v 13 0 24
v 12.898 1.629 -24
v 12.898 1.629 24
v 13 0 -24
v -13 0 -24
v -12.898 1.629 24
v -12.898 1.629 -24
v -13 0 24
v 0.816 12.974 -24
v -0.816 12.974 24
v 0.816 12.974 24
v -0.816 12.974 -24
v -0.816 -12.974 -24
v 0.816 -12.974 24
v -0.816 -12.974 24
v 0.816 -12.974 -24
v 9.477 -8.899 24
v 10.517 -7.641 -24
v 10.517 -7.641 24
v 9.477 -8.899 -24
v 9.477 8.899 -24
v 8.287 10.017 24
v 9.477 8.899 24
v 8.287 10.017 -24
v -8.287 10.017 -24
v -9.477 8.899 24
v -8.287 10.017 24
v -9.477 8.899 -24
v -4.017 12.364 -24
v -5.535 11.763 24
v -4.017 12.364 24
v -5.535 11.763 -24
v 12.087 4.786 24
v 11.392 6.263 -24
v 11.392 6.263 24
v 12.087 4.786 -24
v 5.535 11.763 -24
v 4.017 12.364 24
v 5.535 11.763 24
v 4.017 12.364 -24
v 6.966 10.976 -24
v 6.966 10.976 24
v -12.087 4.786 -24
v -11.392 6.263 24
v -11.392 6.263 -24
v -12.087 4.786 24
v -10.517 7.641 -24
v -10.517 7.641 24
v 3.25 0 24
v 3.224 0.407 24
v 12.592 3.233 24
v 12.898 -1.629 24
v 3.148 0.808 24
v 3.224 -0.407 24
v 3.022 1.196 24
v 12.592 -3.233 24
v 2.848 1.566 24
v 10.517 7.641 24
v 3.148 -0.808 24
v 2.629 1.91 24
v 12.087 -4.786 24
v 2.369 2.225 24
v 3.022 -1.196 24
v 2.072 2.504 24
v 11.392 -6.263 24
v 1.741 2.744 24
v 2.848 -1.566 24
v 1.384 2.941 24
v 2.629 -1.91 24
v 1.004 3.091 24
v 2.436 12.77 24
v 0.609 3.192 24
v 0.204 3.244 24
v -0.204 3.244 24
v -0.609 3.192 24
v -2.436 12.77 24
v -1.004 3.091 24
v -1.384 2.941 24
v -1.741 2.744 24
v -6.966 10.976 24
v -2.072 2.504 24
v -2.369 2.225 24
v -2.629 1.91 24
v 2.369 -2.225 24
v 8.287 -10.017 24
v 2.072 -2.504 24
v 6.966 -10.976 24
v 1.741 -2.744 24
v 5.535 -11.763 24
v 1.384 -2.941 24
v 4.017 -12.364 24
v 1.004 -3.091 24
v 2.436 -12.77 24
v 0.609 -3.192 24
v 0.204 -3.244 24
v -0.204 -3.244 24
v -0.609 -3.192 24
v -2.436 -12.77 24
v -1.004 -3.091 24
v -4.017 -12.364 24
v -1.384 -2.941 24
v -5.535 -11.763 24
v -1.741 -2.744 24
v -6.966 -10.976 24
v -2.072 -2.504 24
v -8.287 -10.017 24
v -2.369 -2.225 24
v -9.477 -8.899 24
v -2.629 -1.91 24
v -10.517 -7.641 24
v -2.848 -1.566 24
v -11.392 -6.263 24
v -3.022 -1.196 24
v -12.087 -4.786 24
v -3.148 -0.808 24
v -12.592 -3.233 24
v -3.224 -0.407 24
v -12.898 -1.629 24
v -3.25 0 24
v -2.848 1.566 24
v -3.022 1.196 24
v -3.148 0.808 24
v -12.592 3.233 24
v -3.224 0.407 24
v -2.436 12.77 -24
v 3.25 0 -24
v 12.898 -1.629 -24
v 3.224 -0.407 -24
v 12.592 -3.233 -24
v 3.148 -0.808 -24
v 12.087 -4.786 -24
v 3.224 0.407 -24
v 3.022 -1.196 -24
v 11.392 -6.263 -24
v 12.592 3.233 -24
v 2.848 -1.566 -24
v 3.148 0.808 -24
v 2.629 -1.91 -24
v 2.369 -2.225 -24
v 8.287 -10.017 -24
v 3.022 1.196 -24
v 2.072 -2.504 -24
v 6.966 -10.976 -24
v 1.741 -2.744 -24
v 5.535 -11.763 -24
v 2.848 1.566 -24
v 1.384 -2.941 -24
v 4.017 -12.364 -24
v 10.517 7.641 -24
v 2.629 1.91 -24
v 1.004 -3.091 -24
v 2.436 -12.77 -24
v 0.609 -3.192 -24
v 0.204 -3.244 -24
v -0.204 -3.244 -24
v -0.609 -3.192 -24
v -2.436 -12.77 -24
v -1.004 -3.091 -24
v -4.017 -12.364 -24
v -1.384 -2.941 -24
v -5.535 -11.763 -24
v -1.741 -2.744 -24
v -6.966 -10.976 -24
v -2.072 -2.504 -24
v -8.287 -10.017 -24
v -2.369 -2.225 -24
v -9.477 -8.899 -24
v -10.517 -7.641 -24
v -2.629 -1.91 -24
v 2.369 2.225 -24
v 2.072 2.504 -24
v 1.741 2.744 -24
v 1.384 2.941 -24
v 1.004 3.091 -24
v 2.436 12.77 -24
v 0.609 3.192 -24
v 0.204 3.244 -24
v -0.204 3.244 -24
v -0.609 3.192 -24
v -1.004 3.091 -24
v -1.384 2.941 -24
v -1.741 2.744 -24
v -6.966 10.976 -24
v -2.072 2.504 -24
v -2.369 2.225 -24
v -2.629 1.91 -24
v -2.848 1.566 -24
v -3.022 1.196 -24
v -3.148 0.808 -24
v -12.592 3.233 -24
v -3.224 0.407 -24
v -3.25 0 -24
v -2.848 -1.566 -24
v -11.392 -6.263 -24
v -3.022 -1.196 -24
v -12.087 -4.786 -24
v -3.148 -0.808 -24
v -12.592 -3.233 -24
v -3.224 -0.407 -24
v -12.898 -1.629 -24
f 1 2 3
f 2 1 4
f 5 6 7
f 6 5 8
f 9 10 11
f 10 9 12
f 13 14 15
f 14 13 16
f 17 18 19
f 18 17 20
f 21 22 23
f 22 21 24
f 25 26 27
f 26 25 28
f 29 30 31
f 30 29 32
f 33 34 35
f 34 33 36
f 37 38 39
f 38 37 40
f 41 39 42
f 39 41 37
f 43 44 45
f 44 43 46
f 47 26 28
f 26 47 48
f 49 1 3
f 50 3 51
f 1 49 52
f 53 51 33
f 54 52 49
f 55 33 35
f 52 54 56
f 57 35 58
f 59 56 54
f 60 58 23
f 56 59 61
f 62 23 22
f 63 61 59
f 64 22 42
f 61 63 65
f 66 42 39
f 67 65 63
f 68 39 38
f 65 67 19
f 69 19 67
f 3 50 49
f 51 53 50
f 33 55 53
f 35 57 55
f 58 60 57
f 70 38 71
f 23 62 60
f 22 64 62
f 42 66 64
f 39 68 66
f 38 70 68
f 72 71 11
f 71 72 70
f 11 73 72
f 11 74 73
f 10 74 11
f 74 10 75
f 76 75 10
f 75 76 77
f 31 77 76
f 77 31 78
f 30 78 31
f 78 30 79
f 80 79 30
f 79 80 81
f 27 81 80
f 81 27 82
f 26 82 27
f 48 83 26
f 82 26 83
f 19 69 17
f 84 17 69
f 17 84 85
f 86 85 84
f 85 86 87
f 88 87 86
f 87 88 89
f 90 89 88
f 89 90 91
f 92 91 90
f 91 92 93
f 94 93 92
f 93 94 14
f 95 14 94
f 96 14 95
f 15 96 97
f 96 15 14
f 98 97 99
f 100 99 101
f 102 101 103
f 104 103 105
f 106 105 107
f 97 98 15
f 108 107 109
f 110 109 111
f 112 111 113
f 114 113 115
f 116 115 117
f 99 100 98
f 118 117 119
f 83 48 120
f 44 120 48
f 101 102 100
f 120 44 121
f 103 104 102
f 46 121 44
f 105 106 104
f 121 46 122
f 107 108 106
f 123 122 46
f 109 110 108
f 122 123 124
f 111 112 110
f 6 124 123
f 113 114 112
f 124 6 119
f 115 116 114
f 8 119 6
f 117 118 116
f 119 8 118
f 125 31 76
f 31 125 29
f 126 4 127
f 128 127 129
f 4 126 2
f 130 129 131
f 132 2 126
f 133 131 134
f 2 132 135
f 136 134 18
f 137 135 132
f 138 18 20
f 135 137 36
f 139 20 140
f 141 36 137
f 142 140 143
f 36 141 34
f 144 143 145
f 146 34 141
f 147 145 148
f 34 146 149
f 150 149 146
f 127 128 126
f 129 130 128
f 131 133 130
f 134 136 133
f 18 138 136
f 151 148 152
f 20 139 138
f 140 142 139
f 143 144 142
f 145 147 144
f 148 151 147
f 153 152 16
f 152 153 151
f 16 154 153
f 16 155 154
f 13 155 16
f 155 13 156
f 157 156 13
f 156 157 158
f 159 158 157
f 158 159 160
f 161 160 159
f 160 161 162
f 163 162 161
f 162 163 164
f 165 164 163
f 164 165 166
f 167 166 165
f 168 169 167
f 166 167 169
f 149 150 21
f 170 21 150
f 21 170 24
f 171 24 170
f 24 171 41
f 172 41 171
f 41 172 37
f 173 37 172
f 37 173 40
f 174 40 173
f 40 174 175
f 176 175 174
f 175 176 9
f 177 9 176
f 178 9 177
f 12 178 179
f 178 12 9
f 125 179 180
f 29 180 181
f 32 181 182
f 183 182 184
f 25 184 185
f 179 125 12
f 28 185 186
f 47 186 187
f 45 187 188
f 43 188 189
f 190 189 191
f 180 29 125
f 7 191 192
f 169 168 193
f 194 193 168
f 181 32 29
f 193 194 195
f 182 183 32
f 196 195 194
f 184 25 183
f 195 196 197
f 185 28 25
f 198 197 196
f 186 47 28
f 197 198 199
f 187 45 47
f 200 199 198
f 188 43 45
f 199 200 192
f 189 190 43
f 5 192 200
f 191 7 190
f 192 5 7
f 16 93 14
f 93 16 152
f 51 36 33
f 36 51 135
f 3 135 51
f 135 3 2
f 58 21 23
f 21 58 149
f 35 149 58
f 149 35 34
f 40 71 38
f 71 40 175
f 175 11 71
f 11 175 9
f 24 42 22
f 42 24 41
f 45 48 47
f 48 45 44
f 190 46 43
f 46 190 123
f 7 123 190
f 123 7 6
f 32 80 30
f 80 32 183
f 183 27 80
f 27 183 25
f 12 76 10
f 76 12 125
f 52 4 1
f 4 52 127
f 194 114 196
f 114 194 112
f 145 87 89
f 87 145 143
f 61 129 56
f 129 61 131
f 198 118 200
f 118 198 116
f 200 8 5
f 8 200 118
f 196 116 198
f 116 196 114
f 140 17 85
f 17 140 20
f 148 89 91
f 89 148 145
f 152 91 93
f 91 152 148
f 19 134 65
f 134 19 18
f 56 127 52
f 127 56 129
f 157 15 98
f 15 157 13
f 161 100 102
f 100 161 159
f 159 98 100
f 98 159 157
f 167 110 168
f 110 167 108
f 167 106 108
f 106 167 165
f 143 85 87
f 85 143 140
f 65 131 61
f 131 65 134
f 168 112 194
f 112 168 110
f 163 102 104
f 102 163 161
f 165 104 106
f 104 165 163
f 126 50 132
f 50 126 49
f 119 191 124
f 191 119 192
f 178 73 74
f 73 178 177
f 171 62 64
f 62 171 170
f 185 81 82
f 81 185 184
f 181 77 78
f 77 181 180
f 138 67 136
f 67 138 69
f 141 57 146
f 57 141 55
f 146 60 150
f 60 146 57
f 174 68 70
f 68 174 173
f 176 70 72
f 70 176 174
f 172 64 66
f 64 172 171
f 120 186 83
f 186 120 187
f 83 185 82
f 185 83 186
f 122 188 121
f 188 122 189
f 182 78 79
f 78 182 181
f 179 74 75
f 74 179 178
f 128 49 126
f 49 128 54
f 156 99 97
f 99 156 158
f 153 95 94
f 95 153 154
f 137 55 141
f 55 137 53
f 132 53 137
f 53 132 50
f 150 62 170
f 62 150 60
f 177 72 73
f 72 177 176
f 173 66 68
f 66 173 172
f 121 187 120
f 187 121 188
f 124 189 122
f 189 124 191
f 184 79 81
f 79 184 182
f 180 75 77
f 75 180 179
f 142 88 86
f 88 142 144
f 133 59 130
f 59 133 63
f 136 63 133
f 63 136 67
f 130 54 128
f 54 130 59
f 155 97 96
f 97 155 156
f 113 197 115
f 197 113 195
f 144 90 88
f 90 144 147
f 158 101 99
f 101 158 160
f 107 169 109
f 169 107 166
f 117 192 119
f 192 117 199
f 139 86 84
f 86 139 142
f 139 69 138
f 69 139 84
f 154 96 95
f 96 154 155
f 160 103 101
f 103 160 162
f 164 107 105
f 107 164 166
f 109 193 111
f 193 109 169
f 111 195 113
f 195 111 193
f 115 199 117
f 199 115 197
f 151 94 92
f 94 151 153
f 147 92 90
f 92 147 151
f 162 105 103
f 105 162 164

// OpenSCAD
$fn = 50;


difference() {
	union() {
		translate(v = [0, 0, -24.0000000000]) {
			cylinder(h = 48, r = 13.0000000000);
		}
	}
	union() {
		translate(v = [0, 0, -100.0000000000]) {
			cylinder(h = 200, r = 3.2500000000);
		}
	}
}
